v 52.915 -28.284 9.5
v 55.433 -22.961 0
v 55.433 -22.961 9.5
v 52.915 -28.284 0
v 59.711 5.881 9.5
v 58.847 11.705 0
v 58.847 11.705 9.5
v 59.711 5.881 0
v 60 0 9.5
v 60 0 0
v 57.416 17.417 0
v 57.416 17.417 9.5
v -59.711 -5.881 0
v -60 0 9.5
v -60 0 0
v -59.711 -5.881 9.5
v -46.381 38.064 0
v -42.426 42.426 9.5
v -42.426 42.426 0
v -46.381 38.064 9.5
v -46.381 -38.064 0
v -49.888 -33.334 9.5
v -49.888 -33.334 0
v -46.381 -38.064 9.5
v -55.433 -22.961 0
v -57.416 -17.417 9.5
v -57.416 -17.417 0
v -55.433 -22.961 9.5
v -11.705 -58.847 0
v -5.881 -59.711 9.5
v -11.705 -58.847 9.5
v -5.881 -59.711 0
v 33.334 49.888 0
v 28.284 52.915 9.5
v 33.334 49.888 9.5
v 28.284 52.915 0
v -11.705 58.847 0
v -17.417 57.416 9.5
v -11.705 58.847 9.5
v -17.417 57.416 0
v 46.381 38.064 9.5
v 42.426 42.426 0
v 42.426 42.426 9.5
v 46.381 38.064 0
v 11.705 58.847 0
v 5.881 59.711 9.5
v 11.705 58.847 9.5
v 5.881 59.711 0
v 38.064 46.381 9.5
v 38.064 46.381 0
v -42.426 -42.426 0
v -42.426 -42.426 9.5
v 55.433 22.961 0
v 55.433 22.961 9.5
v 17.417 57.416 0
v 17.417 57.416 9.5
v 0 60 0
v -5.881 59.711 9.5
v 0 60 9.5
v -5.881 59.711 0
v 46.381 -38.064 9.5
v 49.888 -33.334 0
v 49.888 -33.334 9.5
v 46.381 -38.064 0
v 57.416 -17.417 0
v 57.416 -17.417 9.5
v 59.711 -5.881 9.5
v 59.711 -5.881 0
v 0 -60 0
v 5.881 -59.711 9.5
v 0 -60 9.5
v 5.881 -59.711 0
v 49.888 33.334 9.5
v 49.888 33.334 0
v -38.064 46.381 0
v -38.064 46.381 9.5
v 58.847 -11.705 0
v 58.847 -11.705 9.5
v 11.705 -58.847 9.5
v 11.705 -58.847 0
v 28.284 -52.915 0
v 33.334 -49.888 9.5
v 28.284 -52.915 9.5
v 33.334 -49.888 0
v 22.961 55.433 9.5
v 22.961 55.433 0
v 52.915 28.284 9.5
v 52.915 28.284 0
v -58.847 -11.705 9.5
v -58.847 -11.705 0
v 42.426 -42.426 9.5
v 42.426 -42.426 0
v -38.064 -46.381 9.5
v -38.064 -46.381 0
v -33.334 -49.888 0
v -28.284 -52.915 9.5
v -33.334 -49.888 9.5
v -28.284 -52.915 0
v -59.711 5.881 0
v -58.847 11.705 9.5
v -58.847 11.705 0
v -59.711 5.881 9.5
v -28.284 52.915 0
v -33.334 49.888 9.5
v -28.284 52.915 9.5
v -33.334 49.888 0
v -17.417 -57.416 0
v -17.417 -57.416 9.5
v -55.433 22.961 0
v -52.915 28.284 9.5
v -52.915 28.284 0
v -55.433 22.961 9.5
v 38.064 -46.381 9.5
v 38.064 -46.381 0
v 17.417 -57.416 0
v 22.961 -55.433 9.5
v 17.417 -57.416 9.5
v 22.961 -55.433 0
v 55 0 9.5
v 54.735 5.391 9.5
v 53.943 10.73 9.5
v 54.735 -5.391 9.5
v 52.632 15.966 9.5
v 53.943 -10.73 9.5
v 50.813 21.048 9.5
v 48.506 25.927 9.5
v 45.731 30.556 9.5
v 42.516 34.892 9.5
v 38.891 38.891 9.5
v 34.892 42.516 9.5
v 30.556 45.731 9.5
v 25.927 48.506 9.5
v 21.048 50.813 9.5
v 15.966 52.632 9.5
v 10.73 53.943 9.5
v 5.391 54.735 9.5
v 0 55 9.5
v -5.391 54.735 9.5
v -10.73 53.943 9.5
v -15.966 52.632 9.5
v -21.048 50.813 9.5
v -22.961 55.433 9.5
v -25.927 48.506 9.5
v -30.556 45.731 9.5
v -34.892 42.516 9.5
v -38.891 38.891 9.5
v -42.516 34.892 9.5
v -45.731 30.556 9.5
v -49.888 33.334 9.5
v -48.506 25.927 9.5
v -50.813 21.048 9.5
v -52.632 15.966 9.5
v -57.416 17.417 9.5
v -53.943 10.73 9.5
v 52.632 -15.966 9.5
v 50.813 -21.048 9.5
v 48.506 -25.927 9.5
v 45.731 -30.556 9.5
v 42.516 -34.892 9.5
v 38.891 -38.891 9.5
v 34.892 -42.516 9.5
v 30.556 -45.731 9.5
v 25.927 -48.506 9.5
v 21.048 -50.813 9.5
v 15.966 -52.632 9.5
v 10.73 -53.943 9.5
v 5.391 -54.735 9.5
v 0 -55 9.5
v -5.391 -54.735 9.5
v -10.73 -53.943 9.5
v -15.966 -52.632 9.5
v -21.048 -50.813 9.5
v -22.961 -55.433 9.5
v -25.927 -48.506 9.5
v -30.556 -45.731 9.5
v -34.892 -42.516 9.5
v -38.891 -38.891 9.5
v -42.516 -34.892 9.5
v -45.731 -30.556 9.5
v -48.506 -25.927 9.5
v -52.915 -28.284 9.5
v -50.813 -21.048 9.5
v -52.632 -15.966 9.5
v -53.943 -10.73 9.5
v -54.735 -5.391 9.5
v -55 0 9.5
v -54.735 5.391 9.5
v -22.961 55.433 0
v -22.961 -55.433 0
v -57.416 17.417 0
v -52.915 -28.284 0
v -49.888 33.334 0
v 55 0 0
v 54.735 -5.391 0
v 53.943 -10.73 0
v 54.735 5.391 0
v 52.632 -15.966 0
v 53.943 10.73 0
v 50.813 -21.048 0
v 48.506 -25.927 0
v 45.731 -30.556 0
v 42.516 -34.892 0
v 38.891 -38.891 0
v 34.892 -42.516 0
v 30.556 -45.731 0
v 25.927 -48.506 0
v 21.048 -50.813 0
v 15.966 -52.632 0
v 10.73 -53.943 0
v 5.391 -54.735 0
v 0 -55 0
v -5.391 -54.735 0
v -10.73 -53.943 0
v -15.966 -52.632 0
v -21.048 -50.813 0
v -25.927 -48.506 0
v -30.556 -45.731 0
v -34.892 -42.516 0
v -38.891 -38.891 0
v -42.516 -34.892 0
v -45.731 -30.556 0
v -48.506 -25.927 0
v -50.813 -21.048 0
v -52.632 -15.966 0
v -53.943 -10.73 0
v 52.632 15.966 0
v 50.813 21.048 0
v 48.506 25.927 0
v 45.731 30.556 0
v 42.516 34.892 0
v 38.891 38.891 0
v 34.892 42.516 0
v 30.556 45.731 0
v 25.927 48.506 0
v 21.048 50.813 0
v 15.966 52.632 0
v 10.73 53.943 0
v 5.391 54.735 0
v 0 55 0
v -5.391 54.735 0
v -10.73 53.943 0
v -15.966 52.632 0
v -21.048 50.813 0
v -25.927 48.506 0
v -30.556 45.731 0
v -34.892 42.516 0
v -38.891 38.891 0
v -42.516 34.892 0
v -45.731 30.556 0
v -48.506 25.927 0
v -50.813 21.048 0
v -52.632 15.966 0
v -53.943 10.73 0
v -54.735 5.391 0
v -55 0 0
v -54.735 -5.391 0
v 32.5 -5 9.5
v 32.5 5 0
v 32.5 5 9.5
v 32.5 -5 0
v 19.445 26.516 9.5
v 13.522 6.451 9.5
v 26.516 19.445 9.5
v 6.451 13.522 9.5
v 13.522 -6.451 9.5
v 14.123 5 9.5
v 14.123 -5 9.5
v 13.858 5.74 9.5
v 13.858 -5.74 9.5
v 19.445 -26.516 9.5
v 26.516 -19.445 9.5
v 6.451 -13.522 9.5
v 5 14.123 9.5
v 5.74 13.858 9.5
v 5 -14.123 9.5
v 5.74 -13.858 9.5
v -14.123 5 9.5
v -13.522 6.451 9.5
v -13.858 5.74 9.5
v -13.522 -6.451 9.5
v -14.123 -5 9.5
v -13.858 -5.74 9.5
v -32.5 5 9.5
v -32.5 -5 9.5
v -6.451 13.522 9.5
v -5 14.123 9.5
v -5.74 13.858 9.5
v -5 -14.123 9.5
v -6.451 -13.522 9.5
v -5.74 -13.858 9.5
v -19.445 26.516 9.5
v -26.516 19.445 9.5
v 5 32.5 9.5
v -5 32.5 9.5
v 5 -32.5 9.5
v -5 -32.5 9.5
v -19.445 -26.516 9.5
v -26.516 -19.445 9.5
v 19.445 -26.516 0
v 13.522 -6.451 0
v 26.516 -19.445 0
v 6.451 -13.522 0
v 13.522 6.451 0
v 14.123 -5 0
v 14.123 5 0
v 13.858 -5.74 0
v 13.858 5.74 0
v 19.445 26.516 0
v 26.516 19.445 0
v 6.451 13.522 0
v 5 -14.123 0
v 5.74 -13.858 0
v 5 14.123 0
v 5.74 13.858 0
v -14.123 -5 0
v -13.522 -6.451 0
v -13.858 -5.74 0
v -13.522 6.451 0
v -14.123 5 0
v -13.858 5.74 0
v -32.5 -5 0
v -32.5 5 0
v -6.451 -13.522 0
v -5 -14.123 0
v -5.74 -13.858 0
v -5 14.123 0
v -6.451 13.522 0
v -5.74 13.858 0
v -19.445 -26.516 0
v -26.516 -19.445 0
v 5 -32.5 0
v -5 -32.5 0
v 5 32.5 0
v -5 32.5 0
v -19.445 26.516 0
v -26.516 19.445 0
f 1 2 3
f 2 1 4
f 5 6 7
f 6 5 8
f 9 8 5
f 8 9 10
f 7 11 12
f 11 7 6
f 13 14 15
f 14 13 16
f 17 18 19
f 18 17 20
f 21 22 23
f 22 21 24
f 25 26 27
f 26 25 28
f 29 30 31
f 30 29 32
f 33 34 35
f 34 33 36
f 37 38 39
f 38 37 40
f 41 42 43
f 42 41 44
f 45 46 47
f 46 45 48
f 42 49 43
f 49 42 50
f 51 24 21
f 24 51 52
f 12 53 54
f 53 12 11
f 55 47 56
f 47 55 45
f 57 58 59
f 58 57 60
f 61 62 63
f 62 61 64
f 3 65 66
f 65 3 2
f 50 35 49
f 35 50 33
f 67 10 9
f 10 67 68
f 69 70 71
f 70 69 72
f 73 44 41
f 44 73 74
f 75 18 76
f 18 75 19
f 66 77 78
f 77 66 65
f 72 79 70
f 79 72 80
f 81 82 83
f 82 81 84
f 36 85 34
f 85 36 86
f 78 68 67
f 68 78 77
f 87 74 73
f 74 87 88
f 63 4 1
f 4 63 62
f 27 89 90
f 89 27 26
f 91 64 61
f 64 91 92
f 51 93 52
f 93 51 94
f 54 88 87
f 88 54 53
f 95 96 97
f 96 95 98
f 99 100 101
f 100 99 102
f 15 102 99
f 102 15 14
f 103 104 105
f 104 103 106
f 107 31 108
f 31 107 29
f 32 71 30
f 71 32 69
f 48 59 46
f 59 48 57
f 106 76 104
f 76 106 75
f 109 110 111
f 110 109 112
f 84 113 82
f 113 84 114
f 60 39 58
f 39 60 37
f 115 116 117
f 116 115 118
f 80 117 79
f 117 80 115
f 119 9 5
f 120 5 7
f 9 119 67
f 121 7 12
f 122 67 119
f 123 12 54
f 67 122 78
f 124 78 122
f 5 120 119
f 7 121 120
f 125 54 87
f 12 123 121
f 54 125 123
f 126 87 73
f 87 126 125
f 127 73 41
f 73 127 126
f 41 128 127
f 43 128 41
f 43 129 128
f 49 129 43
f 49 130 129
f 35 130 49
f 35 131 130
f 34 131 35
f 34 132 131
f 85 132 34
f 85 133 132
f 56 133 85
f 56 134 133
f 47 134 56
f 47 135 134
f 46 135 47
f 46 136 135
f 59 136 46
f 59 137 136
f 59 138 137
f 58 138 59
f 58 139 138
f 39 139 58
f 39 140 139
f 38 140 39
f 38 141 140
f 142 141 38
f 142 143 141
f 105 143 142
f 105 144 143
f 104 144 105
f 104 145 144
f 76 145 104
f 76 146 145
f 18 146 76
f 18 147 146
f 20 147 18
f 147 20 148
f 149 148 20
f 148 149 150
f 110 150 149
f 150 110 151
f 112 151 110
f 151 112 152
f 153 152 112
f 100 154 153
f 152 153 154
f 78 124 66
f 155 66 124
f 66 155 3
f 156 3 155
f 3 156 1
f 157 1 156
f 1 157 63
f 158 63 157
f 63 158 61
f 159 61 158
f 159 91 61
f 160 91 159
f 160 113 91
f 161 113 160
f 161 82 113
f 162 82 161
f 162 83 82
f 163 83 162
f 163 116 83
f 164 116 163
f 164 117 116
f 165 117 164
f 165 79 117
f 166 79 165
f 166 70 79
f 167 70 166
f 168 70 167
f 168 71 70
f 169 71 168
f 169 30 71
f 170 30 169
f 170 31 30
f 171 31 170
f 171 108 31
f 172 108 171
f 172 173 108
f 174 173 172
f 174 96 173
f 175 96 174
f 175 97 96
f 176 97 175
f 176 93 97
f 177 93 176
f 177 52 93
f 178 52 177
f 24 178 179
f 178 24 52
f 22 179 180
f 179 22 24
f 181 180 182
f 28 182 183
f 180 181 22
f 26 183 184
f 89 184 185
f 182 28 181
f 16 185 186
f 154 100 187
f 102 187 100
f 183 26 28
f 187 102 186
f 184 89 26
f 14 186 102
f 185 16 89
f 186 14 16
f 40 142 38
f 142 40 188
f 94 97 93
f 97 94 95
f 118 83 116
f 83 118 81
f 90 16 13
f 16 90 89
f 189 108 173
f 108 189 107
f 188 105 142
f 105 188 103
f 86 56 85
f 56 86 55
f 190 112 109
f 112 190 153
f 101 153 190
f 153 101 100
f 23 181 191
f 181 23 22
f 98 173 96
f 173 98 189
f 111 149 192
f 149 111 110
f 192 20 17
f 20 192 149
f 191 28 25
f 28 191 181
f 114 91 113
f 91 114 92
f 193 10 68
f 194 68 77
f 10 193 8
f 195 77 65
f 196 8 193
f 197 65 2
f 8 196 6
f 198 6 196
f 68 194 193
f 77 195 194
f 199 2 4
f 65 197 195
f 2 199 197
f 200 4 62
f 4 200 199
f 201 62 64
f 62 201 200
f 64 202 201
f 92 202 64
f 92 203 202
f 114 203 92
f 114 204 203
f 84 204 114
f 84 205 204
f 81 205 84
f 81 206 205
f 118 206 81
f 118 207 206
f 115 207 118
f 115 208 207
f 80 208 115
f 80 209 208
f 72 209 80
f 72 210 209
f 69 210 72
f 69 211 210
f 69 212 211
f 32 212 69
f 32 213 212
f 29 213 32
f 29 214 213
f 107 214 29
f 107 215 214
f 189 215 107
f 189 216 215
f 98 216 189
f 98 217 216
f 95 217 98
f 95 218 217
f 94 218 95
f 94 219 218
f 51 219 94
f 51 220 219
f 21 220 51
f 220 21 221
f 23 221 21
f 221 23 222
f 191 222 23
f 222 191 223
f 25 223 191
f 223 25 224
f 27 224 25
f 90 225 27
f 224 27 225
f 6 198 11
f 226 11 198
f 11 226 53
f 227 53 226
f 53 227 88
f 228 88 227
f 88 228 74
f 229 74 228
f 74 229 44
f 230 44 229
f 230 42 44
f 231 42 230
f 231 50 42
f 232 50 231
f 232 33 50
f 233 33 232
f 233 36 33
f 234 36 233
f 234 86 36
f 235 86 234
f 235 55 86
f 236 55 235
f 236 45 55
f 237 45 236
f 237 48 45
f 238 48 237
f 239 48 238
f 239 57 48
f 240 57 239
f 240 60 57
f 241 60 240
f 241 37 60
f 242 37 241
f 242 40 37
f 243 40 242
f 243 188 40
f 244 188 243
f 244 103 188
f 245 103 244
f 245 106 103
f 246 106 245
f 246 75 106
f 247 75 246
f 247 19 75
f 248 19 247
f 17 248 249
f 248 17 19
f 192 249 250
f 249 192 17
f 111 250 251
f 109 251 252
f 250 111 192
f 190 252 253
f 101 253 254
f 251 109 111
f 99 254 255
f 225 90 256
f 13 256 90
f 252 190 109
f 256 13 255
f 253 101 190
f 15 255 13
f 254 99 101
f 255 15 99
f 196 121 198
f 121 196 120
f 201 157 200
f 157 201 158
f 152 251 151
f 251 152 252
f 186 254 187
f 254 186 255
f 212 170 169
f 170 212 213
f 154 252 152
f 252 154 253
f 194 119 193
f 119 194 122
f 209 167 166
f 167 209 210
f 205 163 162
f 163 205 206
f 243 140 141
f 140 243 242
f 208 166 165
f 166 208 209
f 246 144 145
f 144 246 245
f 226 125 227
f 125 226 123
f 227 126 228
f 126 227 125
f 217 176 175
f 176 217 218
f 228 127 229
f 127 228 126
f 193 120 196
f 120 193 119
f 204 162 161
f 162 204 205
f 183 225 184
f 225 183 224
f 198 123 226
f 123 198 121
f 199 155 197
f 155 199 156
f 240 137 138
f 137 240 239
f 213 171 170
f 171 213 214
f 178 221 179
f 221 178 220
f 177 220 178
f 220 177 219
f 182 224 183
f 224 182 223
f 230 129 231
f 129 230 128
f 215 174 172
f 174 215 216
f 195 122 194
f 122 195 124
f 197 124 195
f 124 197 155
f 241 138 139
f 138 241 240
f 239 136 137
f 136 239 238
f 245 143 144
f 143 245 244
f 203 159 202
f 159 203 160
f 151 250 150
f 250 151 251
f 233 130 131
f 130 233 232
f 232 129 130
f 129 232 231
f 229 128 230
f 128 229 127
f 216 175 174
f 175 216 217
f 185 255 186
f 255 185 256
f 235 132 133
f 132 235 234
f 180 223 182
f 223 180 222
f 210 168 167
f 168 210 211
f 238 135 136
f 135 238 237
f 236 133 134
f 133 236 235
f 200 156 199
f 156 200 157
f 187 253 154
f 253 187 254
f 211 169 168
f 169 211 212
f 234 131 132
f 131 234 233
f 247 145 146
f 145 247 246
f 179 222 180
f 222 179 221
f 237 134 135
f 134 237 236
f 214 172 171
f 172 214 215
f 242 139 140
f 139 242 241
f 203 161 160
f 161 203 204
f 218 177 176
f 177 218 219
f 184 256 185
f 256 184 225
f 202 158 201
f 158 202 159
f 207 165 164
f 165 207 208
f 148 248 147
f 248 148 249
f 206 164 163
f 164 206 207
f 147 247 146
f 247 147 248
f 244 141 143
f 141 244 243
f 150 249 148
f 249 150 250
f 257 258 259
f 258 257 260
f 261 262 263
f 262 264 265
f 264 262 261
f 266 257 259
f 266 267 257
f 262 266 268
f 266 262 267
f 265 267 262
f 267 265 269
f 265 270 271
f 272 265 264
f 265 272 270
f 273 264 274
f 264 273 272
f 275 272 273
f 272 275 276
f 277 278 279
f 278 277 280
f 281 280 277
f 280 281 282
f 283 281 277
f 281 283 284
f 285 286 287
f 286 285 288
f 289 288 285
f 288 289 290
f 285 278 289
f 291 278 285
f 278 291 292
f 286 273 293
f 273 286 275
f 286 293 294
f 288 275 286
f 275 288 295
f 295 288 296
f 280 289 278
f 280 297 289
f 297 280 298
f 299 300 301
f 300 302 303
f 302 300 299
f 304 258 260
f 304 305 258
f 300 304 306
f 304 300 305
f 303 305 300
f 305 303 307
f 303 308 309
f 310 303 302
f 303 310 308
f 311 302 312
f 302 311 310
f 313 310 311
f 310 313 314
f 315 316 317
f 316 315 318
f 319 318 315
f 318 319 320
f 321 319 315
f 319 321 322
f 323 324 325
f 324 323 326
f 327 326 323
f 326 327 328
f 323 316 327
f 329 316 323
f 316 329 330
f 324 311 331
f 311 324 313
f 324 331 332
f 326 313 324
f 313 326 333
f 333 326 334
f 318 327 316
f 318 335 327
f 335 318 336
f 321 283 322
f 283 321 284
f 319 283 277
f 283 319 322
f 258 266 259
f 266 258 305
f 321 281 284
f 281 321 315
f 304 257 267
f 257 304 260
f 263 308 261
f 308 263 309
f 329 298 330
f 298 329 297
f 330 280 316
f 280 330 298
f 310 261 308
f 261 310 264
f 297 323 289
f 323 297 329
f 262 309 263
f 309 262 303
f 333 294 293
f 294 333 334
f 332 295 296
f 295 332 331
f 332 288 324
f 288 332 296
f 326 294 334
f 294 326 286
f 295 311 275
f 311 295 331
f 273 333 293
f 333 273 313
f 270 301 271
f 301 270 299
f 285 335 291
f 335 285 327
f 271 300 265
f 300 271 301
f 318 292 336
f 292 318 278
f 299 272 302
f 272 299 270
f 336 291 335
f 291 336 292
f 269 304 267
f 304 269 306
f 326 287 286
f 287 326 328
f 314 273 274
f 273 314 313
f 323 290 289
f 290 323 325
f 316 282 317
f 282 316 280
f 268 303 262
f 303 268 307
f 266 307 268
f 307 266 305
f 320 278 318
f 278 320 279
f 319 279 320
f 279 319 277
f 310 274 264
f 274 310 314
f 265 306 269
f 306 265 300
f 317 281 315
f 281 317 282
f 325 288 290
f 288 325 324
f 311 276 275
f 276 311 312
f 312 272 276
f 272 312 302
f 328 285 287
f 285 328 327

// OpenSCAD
/* doodle-meta {"version":1,"parameters":{"outer_diameter":{"label":"Outer Diameter","description":"Diameter of the wheel rim","unit":"mm","feature":"outer_rim"},"wheel_thickness":{"label":"Wheel Thickness","description":"Axial thickness (width) of the wheel","unit":"mm","feature":"wheel_thickness"},"hub_diameter":{"label":"Hub Diameter","description":"Diameter of the central hub","unit":"mm","feature":"central_hub"},"spoke_count":{"label":"Spoke Count","description":"Number of radial spokes","unit":"count","feature":"spokes"},"spoke_width":{"label":"Spoke Width","description":"Width of each spoke","unit":"mm","feature":"spokes"}},"features":{"outer_rim":{"kind":"dimension","axis":"x","label":"Outer Diameter"},"wheel_thickness":{"kind":"dimension","axis":"z","label":"Wheel Thickness"},"central_hub":{"kind":"region","label":"Central Hub","min":[0,0,0],"max":[{"parameter":"hub_diameter","scale":0.5},{"parameter":"hub_diameter","scale":0.5},{"parameter":"wheel_thickness"}]},"spokes":{"kind":"region","label":"Spokes","min":[0,0,0],"max":[{"parameter":"outer_diameter","scale":0.5},{"parameter":"outer_diameter","scale":0.5},{"parameter":"wheel_thickness"}]}}} */

// Parameters
outer_diameter = 120.0;
wheel_thickness = 9.5;
hub_diameter = 30.0;
spoke_count = 8;
spoke_width = 10.0;

// Derived constants
$fn = 64;
eps = 0.01;
rim_thickness = 5.0;

// Main module
module wheel() {
    union() {
        // Outer Rim (Ring)
        difference() {
            cylinder(h = wheel_thickness, d = outer_diameter, center = true);
            cylinder(h = wheel_thickness + 2*eps, d = outer_diameter - 2*rim_thickness, center = true);
        }
        
        // Central Hub
        cylinder(h = wheel_thickness, d = hub_diameter, center = true);
        
        // Spokes
        for (i = [0 : spoke_count - 1]) {
            rotate([0, 0, i * 360 / spoke_count]) {
                // Spoke connects hub to rim
                // Length extends from center to outer radius + overlap into rim
                // Width is spoke_width
                // Positioned along X axis
                translate([0, 0, 0]) {
                    // Length: outer_diameter/2 + rim_thickness ensures overlap with rim
                    // Centered at 0, so it spans from -(L/2) to +(L/2)
                    // We want it to start at 0 (center) and go to outer edge.
                    // So we translate it by L/2 in X? 
                    // Or just make it long enough and centered.
                    // If centered at 0, length L covers -L/2 to L/2.
                    // We want coverage from 0 to outer_radius.
                    // So L/2 should be >= outer_radius.
                    // L = outer_diameter/2 + rim_thickness.
                    // L/2 = outer_diameter/4 + rim_thickness/2.
                    // This is not enough to reach the rim if centered at 0.
                    // The spoke needs to reach from center (0) to outer radius (60).
                    // So the cube should span from 0 to 60+overlap.
                    // Let's use translate to position it correctly.
                    // Cube centered at [L/2, 0, 0] with size [L, W, H].
                    // This spans X from 0 to L.
                    cube([outer_diameter/2 + rim_thickness, spoke_width, wheel_thickness], center = true);
                }
            }
        }
    }
}

// Final instantiation
// The wheel is centered at Z=0 in the module.
// We need to move it so the bottom is at Z=0.
translate([0, 0, wheel_thickness/2]) {
    wheel();
}
